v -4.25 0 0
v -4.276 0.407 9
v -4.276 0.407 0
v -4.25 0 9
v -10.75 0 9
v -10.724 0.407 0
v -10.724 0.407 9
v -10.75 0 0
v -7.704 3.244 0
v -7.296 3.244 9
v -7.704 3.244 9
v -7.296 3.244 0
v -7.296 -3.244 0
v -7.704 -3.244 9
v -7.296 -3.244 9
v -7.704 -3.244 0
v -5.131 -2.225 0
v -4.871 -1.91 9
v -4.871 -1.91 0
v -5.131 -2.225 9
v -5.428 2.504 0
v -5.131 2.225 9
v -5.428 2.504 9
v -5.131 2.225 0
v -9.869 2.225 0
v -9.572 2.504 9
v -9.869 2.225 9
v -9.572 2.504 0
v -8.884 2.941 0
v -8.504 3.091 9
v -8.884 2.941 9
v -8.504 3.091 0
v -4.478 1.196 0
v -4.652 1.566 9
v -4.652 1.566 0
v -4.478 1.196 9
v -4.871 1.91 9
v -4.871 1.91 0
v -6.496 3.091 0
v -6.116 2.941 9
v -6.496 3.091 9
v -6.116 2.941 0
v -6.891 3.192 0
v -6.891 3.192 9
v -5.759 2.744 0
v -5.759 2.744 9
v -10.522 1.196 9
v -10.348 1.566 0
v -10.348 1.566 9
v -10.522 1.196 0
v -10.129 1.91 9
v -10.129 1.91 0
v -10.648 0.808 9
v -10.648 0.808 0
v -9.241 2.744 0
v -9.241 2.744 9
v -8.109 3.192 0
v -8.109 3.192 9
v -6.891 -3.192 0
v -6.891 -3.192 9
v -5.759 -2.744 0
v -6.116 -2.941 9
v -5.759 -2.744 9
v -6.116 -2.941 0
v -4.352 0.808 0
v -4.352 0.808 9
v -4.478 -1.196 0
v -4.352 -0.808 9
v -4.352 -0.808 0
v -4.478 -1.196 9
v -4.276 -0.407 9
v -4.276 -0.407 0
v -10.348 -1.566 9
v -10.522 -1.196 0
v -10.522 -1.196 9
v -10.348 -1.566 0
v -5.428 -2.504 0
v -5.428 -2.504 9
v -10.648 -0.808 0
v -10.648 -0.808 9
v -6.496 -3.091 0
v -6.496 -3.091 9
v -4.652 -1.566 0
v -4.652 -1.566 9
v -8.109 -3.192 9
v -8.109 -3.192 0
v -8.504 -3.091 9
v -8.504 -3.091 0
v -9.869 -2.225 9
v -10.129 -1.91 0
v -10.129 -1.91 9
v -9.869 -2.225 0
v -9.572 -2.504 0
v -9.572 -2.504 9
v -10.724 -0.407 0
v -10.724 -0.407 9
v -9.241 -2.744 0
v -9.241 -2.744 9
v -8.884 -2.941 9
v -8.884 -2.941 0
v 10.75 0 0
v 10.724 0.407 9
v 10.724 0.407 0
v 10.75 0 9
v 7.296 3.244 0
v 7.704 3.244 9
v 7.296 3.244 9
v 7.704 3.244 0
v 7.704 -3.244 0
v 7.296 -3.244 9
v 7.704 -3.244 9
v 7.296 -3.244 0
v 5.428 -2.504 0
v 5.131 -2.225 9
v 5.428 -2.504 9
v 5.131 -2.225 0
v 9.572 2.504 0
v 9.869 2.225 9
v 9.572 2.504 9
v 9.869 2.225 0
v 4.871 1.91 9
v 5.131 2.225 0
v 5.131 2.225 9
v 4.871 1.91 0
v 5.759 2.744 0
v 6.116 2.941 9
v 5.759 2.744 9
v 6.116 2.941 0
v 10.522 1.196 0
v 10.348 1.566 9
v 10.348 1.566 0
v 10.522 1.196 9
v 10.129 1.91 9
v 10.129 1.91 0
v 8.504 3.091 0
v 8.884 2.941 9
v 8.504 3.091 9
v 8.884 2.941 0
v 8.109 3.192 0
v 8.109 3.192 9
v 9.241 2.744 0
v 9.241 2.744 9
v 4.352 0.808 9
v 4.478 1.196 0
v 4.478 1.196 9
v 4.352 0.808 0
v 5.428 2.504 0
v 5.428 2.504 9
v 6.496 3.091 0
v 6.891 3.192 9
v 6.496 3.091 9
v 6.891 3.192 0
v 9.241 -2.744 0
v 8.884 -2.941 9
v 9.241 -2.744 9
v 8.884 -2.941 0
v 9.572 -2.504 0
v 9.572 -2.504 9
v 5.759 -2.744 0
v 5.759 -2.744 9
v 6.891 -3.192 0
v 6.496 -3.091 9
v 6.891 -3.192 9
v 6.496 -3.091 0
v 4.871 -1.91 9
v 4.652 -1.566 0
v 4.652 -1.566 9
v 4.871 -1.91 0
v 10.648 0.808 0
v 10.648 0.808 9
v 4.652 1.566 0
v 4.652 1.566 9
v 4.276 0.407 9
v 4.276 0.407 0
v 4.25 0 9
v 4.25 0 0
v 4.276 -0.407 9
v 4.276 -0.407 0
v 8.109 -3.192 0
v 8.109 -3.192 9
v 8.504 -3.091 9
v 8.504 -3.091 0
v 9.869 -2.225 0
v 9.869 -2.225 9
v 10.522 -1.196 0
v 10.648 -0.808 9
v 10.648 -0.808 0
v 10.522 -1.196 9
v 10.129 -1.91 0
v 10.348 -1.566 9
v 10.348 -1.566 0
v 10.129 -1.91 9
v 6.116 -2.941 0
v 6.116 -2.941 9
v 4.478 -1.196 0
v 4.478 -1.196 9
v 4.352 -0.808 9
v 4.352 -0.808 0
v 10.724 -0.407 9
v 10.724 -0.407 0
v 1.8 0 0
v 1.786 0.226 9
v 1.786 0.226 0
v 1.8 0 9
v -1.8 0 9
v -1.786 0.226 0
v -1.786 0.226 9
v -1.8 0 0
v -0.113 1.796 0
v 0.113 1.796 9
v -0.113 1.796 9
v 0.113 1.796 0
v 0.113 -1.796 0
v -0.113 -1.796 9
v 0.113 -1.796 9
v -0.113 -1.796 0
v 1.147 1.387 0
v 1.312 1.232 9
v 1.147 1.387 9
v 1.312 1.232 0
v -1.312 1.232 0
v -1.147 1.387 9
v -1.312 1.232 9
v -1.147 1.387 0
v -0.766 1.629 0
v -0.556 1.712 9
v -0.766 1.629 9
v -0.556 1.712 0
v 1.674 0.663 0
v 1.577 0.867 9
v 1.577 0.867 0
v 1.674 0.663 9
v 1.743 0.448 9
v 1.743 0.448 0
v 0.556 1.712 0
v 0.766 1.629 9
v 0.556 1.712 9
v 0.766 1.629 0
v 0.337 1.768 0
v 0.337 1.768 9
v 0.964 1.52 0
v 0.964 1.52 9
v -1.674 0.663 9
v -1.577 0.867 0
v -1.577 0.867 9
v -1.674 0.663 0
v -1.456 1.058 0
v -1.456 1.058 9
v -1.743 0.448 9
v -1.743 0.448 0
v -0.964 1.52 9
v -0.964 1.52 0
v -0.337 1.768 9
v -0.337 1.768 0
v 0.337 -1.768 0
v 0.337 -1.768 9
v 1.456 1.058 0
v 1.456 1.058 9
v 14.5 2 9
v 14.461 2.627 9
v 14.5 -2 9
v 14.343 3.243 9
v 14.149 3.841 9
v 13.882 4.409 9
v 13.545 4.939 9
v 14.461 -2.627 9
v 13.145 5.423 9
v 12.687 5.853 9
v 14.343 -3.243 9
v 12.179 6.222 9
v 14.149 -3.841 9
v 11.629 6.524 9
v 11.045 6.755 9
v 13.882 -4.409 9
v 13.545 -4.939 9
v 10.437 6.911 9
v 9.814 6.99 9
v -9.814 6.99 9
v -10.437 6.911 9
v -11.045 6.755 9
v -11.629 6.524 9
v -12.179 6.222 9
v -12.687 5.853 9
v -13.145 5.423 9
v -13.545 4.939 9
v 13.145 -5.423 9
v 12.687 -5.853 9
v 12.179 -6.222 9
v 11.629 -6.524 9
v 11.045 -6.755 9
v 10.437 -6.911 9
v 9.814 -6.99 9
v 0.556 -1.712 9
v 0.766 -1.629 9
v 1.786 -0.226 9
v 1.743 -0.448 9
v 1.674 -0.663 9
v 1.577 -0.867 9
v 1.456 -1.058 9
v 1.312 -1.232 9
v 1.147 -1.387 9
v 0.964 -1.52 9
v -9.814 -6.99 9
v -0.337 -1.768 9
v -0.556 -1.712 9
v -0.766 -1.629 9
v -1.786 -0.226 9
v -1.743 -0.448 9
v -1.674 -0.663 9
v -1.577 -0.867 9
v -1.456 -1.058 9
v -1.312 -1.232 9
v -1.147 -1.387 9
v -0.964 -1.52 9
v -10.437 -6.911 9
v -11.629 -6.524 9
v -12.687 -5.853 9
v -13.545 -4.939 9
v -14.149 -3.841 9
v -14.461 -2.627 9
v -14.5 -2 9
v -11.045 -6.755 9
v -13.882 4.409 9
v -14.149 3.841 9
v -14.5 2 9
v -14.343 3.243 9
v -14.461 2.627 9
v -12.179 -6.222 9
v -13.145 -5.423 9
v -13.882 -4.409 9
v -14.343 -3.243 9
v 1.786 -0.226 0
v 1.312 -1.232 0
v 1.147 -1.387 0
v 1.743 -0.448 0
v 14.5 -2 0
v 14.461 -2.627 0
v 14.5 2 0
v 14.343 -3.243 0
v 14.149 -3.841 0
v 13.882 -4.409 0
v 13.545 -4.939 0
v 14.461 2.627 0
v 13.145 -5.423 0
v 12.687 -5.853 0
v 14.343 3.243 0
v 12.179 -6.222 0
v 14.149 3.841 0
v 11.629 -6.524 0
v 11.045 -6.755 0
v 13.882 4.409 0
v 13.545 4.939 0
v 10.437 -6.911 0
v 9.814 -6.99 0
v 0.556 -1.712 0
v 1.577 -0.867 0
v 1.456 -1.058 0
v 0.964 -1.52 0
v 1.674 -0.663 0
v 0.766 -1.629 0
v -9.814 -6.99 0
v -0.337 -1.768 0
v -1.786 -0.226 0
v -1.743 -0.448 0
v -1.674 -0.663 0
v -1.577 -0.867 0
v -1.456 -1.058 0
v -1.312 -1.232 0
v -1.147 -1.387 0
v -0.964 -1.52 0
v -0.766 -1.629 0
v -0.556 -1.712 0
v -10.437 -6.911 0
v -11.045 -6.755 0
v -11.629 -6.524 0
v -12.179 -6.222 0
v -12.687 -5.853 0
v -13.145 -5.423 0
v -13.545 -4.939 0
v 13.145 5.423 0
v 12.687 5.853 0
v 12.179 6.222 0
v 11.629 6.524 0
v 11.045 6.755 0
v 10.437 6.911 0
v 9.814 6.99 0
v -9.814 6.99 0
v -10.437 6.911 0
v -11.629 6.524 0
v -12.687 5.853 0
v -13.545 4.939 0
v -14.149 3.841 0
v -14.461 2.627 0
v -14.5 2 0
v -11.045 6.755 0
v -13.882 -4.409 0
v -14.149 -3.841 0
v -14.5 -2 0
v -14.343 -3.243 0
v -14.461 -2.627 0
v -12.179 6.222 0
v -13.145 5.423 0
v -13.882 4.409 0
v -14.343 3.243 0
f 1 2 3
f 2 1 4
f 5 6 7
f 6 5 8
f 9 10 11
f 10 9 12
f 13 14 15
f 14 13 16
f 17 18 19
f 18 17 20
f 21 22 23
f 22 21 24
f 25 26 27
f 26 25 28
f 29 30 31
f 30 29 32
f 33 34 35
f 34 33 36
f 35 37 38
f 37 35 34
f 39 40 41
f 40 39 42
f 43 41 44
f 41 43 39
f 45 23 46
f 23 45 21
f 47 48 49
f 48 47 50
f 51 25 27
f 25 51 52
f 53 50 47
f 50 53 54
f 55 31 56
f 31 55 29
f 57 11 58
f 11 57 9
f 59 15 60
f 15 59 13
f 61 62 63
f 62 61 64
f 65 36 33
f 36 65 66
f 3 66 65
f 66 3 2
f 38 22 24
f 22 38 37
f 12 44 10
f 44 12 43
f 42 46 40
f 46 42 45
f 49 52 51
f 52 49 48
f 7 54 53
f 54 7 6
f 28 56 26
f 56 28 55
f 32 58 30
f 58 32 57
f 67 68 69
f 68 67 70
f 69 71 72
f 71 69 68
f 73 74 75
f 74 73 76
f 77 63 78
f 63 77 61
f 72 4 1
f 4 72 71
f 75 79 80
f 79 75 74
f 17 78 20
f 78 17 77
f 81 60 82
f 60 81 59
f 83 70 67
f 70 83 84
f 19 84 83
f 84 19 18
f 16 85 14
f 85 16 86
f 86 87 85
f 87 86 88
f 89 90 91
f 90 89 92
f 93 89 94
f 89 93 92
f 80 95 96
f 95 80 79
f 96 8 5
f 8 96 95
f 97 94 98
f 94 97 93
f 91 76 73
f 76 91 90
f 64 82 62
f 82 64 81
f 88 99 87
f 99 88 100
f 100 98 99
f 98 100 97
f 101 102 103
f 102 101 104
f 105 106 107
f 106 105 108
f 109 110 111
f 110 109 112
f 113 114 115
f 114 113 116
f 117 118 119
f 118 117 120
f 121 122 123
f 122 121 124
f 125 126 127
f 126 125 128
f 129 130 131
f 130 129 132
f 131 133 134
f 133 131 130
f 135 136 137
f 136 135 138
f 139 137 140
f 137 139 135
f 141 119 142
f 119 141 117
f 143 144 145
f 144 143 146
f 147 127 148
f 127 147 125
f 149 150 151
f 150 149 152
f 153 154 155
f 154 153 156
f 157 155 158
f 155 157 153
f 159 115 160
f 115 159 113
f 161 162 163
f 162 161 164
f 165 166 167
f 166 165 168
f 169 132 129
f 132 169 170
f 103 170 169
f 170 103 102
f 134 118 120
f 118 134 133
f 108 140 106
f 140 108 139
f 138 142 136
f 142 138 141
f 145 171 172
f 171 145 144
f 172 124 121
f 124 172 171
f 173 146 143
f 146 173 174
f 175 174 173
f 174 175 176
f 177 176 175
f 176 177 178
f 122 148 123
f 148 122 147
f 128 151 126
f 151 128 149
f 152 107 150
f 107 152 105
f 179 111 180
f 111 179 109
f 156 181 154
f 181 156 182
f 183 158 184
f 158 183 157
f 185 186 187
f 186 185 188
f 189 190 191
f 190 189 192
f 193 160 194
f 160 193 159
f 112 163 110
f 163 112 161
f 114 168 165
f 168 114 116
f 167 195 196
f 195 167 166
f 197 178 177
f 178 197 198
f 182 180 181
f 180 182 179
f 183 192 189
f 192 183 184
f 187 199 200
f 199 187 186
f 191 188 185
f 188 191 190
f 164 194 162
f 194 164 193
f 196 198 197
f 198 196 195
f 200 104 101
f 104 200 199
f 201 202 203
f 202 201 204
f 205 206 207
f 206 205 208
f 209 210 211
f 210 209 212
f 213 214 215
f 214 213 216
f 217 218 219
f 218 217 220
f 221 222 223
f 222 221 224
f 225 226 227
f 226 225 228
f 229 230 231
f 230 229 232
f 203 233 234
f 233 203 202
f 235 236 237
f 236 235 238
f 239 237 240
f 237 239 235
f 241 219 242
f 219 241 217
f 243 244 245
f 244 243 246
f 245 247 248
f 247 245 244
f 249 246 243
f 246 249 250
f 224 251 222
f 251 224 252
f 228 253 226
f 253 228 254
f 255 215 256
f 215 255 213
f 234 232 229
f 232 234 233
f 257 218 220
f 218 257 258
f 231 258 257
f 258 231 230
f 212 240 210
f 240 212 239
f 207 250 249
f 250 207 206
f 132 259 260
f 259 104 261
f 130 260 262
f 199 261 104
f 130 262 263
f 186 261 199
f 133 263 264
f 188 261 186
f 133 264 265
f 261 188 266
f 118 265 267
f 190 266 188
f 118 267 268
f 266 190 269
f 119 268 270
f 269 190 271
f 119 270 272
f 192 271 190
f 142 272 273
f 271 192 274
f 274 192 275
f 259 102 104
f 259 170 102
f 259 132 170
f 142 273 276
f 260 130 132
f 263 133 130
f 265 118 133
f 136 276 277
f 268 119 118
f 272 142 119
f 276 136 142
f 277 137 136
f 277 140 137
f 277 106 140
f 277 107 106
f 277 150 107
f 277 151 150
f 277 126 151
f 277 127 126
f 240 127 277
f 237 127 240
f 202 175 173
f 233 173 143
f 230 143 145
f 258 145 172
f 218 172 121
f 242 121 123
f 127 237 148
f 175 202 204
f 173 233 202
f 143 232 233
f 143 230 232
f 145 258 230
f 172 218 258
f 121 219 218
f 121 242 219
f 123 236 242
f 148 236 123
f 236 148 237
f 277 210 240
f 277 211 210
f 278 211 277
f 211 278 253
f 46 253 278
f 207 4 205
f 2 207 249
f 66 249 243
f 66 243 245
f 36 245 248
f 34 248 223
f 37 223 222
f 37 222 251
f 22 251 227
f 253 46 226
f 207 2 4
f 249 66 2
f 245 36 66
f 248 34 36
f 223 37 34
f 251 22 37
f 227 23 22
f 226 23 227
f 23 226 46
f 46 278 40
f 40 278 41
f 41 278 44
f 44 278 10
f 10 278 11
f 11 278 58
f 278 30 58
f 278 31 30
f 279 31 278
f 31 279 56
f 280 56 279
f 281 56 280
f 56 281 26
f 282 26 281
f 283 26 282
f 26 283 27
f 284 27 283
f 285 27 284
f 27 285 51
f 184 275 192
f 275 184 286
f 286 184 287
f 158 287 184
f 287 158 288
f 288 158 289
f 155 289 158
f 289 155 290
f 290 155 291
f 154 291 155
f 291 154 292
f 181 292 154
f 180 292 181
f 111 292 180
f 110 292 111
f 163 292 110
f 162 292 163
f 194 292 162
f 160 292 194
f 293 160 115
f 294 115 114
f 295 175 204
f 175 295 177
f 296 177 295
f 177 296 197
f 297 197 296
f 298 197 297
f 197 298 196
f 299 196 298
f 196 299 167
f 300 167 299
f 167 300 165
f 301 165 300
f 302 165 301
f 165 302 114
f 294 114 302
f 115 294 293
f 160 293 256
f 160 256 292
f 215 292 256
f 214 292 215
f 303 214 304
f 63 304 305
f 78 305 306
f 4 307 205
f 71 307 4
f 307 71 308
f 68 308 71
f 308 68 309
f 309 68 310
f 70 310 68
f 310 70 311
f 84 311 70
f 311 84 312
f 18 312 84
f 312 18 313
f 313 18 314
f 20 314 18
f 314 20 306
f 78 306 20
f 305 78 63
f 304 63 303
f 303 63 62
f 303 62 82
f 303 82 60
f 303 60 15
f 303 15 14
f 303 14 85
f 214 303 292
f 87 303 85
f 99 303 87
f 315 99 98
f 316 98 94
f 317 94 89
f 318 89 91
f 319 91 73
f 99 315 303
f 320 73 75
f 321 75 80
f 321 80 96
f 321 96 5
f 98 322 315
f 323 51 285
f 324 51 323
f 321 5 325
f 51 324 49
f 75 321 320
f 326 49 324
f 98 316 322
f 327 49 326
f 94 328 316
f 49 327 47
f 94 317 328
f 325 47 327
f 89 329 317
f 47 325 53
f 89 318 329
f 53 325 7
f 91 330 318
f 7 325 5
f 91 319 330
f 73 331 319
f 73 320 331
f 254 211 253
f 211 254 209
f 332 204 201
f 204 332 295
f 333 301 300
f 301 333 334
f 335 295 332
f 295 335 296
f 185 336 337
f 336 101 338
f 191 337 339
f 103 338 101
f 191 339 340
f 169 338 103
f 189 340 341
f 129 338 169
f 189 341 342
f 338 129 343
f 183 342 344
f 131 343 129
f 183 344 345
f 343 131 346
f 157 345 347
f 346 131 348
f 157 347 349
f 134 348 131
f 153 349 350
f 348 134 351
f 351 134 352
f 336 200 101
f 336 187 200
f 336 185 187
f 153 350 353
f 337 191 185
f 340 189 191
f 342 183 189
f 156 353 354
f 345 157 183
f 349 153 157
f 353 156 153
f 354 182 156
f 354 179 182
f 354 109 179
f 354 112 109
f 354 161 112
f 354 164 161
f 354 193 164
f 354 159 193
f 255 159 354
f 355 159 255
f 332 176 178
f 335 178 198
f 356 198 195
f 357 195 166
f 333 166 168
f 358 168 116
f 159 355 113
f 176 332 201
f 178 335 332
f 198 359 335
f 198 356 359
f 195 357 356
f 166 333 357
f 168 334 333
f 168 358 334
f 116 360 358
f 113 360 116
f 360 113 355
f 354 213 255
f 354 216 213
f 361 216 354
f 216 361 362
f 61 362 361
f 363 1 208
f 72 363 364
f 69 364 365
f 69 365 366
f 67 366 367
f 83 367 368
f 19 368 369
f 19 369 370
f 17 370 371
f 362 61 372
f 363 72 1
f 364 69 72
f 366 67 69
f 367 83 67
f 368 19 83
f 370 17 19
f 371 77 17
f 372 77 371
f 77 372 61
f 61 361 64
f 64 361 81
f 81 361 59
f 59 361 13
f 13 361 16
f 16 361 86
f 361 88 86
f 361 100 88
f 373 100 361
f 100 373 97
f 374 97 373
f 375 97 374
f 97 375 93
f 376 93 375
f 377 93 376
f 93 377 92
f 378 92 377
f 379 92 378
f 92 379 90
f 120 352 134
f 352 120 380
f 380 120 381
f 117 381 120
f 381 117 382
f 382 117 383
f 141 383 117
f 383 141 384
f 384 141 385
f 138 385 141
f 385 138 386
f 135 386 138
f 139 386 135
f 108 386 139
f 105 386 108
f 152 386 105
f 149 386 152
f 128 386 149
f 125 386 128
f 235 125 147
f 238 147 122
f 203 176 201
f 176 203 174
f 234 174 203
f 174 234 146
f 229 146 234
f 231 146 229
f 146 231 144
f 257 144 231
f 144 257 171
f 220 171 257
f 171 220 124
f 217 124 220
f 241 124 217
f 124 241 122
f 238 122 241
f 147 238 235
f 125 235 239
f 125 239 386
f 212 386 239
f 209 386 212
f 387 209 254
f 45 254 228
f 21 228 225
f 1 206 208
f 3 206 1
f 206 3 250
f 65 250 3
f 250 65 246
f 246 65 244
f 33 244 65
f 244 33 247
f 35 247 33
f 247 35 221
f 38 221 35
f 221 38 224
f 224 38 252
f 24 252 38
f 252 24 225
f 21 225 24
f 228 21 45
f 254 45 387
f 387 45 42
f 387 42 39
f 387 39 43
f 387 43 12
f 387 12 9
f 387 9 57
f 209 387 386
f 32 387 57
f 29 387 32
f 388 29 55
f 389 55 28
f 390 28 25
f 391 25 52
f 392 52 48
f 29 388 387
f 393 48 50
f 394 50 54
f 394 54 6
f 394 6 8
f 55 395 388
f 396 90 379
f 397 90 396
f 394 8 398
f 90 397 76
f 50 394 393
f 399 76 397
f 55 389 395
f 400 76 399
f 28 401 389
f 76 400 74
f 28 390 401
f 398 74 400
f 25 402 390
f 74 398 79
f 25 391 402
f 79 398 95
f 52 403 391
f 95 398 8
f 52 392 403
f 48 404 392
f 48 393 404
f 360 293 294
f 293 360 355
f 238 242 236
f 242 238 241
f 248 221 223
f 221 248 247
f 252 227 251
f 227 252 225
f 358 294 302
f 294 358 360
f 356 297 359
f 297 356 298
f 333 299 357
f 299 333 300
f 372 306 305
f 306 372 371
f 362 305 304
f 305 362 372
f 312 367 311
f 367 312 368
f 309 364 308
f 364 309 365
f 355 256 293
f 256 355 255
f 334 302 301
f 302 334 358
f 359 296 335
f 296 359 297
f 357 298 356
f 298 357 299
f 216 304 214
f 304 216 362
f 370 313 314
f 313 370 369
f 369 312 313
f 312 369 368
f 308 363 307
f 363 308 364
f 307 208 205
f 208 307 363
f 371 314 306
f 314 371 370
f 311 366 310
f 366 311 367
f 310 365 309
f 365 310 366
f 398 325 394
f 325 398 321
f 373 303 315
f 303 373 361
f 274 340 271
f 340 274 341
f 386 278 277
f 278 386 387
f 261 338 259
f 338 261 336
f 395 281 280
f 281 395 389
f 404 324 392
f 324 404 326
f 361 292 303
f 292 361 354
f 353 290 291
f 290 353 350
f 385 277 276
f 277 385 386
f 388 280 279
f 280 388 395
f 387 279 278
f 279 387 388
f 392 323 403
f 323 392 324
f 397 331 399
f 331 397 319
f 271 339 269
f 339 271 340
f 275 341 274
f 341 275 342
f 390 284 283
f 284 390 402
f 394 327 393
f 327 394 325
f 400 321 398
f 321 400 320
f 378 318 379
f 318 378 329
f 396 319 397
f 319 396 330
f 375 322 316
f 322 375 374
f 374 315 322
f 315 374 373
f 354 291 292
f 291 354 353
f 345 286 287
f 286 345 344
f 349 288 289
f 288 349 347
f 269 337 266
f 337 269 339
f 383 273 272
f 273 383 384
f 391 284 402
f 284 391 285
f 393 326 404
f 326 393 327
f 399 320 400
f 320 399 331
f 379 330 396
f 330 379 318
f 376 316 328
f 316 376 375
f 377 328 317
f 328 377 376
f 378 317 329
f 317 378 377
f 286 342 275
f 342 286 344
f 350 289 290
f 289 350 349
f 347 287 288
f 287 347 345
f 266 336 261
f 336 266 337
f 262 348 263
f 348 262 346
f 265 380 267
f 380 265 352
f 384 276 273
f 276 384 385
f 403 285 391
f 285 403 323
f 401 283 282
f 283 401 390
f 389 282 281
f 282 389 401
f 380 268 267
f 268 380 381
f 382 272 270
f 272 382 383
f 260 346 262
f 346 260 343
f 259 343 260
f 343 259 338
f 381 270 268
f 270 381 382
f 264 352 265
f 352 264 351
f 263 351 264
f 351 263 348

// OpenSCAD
$fn = 50;


difference() {
	union() {
		hull() {
			translate(v = [-9.5000000000, 2.0000000000, 0]) {
				cylinder(h = 9, r = 5);
			}
			translate(v = [9.5000000000, 2.0000000000, 0]) {
				cylinder(h = 9, r = 5);
			}
			translate(v = [-9.5000000000, -2.0000000000, 0]) {
				cylinder(h = 9, r = 5);
			}
			translate(v = [9.5000000000, -2.0000000000, 0]) {
				cylinder(h = 9, r = 5);
			}
		}
	}
	union() {
		translate(v = [-7.5000000000, 0.0000000000, -100.0000000000]) {
			cylinder(h = 200, r = 3.2500000000);
		}
		translate(v = [7.5000000000, 0.0000000000, -100.0000000000]) {
			cylinder(h = 200, r = 3.2500000000);
		}
		translate(v = [-7.5000000000, 0.0000000000, 0]) {
			cylinder(h = 9, r = 1.8000000000);
		}
		cylinder(h = 9, r = 1.8000000000);
		translate(v = [7.5000000000, 0.0000000000, 0]) {
			cylinder(h = 9, r = 1.8000000000);
		}
		translate(v = [-7.5000000000, 0.0000000000, 0]) {
			cylinder(h = 9, r = 1.8000000000);
		}
		cylinder(h = 9, r = 1.8000000000);
		translate(v = [7.5000000000, 0.0000000000, 0]) {
			cylinder(h = 9, r = 1.8000000000);
		}
		translate(v = [-7.5000000000, 0.0000000000, 0]) {
			cylinder(h = 9, r = 1.8000000000);
		}
		cylinder(h = 9, r = 1.8000000000);
		translate(v = [7.5000000000, 0.0000000000, 0]) {
			cylinder(h = 9, r = 1.8000000000);
		}
	}
}
